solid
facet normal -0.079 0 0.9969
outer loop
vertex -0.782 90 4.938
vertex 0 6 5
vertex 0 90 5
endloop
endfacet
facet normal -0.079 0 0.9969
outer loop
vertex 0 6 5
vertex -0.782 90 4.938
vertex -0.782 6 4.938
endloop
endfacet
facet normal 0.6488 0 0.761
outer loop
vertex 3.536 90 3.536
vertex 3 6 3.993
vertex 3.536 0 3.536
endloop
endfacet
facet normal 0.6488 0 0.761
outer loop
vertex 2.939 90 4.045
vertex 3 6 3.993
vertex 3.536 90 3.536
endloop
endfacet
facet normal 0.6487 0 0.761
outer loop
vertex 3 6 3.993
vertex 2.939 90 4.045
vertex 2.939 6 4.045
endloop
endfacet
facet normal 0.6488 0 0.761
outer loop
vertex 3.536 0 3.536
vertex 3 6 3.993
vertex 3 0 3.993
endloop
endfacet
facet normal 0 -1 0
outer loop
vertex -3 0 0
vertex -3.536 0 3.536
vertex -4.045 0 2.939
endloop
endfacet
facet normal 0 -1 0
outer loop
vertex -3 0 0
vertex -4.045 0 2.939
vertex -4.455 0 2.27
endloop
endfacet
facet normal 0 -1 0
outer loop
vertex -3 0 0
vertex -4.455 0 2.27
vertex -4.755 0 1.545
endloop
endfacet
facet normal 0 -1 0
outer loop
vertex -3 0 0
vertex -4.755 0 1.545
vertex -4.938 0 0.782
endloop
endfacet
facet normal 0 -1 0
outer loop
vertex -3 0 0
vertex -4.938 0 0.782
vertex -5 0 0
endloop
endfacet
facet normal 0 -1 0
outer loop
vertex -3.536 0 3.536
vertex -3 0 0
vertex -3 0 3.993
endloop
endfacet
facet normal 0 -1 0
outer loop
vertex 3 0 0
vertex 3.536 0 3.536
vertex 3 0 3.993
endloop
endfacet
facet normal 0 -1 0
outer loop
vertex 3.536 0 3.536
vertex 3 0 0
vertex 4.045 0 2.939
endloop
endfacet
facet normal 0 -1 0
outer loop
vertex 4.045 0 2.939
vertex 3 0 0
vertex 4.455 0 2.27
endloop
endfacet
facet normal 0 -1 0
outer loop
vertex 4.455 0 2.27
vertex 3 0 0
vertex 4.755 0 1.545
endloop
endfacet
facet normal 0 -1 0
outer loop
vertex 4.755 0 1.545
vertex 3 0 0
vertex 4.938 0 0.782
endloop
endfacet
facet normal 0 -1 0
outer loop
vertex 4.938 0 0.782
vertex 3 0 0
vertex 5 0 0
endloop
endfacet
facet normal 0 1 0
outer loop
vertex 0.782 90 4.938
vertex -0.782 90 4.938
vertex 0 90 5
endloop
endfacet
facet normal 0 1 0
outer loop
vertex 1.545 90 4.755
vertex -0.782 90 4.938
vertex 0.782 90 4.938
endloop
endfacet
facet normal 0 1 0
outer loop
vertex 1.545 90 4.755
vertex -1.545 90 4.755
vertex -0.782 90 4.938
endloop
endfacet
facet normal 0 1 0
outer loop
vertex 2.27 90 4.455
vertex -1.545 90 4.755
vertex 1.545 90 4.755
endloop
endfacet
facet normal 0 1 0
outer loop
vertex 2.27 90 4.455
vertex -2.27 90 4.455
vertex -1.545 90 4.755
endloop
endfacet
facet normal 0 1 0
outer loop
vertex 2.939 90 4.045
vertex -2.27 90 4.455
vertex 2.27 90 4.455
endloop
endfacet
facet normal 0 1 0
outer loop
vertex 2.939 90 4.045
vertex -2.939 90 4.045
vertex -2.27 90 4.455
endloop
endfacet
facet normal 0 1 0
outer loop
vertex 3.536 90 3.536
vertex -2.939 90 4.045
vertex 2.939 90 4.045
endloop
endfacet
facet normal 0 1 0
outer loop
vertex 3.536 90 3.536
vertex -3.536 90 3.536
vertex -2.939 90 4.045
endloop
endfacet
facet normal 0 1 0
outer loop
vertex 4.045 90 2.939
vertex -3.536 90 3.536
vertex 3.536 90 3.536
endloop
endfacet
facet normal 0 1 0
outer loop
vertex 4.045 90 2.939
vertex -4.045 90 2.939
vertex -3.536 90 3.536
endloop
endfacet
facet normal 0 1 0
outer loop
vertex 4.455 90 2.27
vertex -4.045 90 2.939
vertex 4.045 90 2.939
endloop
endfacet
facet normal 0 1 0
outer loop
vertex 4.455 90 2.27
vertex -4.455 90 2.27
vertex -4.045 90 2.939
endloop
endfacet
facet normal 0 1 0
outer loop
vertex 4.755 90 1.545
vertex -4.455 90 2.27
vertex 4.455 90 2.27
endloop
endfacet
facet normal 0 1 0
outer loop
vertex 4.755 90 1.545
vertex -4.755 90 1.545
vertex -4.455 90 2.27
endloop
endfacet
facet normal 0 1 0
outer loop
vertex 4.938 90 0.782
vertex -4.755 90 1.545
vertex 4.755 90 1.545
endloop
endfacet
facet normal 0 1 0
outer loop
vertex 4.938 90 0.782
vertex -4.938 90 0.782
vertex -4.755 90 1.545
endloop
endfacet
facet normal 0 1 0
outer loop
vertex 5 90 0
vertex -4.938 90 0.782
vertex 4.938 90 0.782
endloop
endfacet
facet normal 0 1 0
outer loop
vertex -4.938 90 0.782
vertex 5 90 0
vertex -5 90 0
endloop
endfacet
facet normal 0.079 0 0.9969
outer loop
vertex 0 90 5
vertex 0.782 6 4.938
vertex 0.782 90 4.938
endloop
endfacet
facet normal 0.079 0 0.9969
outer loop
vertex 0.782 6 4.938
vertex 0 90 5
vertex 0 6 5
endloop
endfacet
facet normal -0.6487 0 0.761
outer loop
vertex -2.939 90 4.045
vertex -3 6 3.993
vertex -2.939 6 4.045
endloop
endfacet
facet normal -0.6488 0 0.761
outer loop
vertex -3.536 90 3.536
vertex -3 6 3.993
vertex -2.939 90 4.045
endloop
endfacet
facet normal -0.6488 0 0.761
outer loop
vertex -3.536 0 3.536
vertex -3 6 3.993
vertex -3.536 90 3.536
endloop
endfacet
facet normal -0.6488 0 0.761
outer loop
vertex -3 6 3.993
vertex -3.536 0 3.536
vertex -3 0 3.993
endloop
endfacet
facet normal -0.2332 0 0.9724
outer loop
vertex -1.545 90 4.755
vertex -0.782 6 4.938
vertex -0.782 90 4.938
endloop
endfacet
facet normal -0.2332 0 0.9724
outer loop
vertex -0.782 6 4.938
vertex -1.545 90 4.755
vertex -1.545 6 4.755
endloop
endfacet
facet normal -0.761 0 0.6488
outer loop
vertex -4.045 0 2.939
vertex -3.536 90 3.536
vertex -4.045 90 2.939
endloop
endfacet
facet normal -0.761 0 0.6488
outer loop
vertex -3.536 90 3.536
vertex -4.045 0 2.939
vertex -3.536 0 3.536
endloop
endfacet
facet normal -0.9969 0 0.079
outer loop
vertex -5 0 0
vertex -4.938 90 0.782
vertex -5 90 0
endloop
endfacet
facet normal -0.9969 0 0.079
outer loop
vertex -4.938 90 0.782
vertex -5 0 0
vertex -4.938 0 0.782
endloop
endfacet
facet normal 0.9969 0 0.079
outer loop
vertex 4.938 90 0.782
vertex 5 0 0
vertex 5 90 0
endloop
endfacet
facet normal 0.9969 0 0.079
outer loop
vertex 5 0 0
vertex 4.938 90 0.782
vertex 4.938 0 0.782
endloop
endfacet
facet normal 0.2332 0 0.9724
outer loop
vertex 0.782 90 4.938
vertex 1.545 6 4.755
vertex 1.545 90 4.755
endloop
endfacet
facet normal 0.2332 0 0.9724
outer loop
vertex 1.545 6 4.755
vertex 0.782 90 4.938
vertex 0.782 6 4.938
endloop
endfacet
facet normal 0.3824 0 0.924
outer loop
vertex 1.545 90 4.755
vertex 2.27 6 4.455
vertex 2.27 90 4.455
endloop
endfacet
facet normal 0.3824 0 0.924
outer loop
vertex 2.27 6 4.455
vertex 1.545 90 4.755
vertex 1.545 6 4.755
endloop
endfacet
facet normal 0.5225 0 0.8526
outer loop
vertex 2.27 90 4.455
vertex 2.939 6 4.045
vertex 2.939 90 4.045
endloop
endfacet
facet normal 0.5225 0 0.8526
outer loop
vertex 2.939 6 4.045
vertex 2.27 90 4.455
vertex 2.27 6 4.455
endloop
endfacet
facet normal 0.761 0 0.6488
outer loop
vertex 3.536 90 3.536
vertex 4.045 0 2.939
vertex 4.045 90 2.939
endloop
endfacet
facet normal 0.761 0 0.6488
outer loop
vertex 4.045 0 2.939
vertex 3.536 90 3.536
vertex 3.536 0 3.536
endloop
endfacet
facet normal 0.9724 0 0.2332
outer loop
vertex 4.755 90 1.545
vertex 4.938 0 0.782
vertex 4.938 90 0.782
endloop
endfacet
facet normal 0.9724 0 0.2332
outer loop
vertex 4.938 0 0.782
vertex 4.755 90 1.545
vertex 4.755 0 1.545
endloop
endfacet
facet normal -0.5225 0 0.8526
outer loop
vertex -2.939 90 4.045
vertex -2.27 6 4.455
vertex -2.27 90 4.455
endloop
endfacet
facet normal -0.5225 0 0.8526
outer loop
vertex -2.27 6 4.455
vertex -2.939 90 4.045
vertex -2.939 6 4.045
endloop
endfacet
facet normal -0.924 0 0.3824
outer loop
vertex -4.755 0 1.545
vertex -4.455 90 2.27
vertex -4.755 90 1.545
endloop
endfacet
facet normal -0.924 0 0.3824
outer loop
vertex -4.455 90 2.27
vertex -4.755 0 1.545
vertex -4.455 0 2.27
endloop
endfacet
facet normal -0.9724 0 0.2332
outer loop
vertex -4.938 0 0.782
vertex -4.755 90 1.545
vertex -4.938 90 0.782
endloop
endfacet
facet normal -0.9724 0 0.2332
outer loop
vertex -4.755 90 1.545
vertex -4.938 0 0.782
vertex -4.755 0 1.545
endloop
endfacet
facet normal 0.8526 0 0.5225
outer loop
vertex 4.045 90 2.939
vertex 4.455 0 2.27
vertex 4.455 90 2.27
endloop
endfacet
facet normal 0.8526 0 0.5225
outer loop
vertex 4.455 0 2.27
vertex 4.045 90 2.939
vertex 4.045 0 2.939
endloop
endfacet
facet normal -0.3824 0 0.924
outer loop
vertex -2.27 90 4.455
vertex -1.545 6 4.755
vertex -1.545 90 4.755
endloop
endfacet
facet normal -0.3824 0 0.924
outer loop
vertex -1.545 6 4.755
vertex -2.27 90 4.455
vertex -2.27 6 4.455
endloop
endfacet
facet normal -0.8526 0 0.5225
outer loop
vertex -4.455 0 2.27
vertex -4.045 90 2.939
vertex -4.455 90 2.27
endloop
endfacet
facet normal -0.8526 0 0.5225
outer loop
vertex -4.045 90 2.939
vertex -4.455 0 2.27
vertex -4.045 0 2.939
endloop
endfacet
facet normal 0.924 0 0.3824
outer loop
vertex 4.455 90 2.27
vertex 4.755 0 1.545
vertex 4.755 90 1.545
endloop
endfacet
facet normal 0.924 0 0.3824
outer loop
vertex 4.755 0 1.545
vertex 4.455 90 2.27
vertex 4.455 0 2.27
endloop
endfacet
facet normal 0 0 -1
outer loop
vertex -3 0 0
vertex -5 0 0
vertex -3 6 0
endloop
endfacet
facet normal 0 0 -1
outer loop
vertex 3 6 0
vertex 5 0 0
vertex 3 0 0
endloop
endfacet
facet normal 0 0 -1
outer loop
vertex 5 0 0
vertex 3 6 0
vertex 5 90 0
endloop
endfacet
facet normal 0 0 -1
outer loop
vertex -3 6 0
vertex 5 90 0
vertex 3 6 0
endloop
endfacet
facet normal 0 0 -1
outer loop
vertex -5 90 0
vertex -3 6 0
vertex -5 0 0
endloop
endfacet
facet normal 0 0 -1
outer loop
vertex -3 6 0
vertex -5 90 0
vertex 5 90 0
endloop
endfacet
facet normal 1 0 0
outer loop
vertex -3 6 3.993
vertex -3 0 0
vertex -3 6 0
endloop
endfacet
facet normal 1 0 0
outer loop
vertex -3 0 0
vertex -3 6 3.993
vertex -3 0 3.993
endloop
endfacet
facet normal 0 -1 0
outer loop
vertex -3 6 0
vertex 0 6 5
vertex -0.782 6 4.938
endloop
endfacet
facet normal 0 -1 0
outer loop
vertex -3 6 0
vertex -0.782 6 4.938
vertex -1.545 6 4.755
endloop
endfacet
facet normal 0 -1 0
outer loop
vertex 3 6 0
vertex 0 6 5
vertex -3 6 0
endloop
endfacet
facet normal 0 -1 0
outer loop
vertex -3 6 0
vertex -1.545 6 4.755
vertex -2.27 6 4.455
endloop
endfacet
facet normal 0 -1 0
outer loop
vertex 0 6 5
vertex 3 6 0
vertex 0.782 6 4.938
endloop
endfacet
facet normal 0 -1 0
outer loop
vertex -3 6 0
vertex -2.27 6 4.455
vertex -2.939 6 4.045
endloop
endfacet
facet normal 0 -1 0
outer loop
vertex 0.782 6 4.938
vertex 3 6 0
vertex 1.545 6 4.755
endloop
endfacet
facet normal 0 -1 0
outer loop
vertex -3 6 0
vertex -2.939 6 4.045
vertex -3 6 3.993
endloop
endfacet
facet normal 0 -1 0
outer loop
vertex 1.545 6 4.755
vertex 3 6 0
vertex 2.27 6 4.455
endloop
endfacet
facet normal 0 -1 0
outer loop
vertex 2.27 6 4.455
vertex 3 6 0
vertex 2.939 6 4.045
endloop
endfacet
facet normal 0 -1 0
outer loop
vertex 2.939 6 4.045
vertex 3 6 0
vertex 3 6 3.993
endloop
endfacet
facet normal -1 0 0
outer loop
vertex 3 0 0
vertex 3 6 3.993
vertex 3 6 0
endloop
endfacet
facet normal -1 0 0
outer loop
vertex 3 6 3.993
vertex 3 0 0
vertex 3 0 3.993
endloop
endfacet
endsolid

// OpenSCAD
// propsaver installation tool
$fn=40;

L=90;
d1=10;//9;
d2=6;//5;

rotate([-90,0,0]) difference() {
    cylinder(L,d=d1);
    //cylinder(L,d=d2);  // make it hollow
    translate([-d1/2,0,0]) cube([d1,d1,L]);
#   translate([-d2/2,-d2,0])  cube([d2,d2,d2]);
}
